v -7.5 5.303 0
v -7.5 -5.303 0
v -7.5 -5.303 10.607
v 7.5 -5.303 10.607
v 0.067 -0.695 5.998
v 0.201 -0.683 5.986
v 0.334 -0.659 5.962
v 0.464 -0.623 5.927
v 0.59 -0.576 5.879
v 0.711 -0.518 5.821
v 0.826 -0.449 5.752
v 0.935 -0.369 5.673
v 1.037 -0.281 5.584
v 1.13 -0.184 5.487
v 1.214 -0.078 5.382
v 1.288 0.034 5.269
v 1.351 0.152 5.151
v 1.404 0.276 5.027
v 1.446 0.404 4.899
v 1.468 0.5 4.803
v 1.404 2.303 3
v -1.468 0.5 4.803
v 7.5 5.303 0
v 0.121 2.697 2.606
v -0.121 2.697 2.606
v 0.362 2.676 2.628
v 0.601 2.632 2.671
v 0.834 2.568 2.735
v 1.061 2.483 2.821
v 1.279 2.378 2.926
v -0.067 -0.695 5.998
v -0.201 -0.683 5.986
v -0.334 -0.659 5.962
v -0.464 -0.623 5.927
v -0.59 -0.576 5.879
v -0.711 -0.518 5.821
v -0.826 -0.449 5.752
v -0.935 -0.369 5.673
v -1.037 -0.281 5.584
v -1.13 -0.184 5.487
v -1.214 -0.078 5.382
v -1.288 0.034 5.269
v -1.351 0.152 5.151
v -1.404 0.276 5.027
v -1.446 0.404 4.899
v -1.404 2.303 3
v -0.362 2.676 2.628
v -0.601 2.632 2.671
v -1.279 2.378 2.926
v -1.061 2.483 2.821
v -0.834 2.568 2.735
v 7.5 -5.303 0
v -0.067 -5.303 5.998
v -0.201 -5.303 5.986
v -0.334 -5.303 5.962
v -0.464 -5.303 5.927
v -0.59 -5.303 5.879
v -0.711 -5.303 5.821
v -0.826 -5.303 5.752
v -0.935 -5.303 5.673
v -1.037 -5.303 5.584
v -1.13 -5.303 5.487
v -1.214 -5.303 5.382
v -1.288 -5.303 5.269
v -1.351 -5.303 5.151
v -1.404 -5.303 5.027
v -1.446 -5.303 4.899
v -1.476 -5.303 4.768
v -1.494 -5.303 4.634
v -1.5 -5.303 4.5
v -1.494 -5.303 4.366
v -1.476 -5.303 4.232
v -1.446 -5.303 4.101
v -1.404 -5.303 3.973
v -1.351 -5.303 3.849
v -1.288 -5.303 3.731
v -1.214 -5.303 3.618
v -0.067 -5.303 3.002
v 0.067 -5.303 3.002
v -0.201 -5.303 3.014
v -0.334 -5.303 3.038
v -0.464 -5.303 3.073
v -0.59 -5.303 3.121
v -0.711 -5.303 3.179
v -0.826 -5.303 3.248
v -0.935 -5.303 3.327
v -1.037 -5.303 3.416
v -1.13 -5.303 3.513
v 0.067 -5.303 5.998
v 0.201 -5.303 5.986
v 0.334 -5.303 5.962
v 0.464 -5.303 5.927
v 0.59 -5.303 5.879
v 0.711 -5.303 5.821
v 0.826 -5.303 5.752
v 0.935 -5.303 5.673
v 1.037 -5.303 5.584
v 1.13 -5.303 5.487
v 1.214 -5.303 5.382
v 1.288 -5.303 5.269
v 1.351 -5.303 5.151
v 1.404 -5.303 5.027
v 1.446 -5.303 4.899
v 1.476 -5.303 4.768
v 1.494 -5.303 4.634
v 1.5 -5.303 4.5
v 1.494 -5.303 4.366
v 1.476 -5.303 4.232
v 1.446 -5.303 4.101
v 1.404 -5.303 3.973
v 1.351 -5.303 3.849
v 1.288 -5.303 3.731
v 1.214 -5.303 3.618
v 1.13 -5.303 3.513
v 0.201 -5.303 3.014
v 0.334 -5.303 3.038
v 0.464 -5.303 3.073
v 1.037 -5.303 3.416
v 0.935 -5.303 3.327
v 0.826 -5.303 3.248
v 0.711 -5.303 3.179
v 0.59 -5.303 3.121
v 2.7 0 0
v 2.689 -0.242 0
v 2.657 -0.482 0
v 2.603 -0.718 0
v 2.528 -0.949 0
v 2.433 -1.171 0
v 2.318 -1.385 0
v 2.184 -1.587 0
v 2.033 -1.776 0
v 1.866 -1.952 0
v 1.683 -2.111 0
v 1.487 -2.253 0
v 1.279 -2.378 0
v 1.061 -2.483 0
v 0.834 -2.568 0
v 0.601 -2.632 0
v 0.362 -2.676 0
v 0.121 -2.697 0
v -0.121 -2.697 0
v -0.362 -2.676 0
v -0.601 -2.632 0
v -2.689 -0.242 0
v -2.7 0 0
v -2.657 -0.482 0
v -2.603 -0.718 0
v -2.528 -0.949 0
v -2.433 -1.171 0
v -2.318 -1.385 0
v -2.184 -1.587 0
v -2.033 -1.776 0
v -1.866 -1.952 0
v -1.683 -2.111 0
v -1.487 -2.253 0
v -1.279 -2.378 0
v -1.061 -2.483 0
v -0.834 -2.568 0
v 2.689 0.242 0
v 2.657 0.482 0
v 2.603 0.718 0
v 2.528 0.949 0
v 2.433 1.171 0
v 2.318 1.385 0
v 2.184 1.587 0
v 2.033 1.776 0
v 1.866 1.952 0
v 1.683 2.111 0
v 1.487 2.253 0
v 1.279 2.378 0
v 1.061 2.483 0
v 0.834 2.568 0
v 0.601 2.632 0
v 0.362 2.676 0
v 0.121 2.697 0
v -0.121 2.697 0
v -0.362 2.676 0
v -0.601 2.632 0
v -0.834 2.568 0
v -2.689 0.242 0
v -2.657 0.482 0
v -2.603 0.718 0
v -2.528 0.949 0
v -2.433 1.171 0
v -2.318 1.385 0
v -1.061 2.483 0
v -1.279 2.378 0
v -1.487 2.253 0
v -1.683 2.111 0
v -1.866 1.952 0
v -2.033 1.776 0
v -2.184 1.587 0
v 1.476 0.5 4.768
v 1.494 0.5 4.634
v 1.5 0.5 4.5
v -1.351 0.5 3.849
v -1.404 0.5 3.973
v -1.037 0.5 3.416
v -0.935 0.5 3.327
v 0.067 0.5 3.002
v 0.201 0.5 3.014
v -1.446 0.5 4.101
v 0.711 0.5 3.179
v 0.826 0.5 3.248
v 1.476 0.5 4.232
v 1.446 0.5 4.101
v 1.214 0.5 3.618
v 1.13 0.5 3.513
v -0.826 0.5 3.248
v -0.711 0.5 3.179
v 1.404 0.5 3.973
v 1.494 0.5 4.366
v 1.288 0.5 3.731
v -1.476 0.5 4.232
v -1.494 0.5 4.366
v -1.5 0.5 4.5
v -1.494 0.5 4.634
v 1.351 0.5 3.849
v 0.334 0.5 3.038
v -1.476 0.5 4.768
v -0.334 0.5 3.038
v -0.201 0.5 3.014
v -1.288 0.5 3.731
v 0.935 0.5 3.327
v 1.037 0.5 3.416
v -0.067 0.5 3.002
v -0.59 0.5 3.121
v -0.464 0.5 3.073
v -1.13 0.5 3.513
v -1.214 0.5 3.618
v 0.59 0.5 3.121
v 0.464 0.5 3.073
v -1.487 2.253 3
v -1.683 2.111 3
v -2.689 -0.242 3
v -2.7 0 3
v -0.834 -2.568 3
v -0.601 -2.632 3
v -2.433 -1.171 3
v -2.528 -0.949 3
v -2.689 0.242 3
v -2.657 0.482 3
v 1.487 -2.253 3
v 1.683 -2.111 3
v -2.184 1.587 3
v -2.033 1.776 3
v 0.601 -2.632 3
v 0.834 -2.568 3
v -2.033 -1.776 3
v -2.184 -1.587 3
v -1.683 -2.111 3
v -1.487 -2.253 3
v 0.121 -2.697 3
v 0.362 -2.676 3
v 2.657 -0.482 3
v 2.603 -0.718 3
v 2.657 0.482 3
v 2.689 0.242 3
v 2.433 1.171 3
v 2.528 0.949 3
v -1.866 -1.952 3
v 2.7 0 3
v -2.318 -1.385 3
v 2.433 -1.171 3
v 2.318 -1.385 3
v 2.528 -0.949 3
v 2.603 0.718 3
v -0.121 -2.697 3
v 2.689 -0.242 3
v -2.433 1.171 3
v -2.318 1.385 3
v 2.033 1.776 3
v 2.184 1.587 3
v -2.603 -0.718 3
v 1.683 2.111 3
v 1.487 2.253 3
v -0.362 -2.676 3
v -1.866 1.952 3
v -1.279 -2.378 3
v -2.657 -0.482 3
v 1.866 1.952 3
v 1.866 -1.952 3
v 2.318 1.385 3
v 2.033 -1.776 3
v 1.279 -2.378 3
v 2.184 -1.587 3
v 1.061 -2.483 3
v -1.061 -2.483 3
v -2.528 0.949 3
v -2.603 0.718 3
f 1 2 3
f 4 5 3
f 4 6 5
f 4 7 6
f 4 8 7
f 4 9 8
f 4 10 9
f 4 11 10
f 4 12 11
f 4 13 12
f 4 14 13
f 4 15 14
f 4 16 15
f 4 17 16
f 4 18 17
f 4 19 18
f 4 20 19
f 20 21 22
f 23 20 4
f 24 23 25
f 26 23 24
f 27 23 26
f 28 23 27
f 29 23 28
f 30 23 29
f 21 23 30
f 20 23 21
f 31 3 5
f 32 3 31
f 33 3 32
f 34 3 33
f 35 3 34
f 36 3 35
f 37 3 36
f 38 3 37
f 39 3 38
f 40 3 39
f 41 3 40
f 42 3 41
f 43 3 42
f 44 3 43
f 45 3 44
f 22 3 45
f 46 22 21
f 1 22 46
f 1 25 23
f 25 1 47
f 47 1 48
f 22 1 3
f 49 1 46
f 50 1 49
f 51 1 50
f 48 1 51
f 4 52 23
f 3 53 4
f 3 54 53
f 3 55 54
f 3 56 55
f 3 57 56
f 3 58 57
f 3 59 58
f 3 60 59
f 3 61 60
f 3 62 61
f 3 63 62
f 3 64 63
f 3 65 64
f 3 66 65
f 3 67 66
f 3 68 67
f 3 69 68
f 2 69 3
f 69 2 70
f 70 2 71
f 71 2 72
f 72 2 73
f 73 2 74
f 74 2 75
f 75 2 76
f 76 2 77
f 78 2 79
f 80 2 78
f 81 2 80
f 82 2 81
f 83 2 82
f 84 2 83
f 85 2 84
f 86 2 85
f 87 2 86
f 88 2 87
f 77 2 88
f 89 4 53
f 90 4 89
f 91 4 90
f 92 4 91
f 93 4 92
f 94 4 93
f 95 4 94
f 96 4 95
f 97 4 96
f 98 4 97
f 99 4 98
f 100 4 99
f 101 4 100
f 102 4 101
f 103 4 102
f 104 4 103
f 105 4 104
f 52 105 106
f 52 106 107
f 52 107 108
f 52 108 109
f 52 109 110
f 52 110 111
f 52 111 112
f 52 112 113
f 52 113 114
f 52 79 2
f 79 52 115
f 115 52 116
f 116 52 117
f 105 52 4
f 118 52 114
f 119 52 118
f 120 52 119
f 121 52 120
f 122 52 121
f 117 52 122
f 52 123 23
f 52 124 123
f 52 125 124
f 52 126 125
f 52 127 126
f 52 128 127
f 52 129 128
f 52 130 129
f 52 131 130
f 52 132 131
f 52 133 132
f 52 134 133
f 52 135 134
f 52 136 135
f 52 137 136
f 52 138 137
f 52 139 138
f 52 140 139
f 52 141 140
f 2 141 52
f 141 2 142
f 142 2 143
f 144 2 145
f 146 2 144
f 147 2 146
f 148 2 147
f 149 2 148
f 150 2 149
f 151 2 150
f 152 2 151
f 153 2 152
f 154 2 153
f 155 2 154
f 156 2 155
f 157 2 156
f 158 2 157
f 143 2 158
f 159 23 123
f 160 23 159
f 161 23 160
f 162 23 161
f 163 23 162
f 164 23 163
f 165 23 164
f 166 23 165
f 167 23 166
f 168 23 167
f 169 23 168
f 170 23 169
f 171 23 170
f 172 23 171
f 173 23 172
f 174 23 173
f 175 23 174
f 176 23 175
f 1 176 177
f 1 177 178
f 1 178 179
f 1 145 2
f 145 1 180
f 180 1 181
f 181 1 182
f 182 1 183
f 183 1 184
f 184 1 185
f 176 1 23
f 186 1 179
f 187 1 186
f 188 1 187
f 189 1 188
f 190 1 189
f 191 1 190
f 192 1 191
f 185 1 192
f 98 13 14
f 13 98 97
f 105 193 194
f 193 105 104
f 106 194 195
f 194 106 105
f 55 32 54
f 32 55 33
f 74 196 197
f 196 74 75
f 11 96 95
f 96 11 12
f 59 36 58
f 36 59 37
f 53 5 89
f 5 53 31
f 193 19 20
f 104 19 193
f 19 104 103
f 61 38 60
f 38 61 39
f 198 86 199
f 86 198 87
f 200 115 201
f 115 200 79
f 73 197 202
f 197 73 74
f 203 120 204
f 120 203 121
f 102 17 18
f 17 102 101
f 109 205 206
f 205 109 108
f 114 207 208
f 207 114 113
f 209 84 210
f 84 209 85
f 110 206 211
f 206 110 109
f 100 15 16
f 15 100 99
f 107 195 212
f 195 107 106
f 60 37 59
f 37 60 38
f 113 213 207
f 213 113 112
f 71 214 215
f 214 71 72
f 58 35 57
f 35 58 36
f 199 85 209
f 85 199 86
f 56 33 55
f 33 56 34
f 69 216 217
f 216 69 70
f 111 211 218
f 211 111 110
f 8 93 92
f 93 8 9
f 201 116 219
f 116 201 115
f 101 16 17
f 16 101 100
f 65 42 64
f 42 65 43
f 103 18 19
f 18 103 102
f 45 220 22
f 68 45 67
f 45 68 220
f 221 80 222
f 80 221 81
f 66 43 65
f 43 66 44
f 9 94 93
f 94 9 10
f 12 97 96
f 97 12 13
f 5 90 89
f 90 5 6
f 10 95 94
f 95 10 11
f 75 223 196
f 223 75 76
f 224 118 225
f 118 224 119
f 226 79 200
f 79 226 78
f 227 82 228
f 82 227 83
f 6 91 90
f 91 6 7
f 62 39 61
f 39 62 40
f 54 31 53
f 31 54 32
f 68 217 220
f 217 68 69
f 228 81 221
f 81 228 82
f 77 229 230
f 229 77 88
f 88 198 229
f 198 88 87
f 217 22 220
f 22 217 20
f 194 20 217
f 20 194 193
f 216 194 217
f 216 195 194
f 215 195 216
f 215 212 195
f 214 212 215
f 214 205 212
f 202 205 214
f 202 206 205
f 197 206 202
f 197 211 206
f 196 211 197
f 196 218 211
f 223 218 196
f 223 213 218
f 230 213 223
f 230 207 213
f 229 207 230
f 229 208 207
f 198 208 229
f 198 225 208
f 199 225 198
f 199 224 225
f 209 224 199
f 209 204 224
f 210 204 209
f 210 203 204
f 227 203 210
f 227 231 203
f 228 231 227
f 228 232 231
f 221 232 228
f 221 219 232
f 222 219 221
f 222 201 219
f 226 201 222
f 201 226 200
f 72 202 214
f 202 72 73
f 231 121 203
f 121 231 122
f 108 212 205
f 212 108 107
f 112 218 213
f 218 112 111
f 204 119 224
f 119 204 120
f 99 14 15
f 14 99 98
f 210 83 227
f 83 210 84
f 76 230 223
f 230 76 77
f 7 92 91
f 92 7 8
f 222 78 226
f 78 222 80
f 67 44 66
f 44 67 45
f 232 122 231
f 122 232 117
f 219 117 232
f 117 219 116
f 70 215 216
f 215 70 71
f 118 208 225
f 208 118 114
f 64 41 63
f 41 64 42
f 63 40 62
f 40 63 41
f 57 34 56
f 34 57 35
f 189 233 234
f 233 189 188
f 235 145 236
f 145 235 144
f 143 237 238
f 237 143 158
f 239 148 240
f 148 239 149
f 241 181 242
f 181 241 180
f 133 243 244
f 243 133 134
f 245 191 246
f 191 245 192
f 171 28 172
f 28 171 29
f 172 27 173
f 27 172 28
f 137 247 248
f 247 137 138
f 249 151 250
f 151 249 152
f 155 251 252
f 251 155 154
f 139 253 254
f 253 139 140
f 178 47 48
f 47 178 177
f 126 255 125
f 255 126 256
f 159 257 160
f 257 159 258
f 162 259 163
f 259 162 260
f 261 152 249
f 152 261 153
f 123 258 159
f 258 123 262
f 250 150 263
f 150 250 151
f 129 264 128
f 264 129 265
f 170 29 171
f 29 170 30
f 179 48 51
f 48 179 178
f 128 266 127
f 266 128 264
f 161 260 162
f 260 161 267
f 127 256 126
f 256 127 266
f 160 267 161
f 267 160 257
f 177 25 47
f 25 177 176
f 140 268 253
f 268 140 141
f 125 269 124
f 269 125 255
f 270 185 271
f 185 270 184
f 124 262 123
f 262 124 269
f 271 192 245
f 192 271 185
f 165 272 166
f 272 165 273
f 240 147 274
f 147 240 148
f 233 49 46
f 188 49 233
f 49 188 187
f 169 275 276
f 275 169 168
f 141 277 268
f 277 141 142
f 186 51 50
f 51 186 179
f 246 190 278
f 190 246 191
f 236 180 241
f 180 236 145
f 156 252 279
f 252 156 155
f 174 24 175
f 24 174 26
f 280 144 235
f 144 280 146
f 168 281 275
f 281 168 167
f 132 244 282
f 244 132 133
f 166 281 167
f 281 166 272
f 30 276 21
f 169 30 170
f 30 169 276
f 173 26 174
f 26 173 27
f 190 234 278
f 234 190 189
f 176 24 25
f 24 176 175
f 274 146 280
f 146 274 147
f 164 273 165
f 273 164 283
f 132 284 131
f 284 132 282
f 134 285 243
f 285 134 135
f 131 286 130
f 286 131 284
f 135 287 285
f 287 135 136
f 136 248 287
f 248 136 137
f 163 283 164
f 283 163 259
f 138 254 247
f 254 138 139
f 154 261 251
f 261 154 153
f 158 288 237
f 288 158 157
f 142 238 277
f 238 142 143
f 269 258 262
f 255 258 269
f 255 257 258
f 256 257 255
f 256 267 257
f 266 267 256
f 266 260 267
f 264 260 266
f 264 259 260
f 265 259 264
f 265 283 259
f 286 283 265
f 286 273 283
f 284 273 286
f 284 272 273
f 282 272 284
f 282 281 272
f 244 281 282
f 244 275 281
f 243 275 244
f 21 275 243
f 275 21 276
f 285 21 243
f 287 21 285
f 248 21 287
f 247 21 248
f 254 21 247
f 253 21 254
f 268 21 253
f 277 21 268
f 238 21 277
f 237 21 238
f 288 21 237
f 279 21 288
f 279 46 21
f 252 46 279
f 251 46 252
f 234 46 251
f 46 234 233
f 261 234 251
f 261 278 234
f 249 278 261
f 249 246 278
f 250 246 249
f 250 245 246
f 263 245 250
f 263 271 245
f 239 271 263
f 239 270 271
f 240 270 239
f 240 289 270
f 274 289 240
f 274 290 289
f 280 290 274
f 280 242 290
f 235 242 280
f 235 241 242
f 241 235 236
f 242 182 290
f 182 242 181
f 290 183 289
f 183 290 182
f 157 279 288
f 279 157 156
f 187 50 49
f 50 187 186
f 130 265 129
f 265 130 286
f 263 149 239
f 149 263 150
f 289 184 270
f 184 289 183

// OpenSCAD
$fn=70;

diameter  = 5;
height=15;
module shaft(tolerance)
{
    
    translate([0,0,-height/2])
    cylinder(h=height,d=diameter+tolerance,center=true);
}


module shaftSupport(tolerance)
{
    diameter_support=4;    
    translate([0,0,-height/2])
    cylinder(h=height,d=diameter+diameter_support+tolerance,center=true);
}

module mirrorSupport(l=15)
{
points = [
    [0, 0, 0], // Point 1
    [0, l, 0], // Point 2
    [l, l, 0], // Point 3
    [l, 0, 0], // Point 4
    [0, l/2, sqrt(l*l/2)/sqrt(2) ], // Point 5
    [l, l/2, sqrt(l*l/2)/sqrt(2) ]  // Point 6
];
faces = [
    [3, 2, 1, 0],  // Base, normal upwards
    [0, 1, 4],     // Side triangle, normal outward
    [1, 2, 5, 4],  //  Side face, normal outward
    [2, 3, 5],     // Side triangle, normal outward
    [4, 5, 3, 0],  //  Side face, normal outward
];


translate([0,0,l/2/sqrt(2)])
rotate([135,0,0])
translate([-l/2,-l/2,0])
polyhedron(points, faces);
}

tolerance=0.4;

color("gray")
difference()
{
    mirrorSupport(15);
    diameter_screw = 3;
    distance_to_border=3;
    //translate([0,5,distance_to_border-height+diameter_screw/2])
    translate([0,-3,distance_to_border+diameter_screw/2])
    rotate([90,0,0])
    color("green")
    cylinder(h=7,d=diameter_screw,center=true);
    translate([0,0,3])
    shaft(tolerance);   
}
